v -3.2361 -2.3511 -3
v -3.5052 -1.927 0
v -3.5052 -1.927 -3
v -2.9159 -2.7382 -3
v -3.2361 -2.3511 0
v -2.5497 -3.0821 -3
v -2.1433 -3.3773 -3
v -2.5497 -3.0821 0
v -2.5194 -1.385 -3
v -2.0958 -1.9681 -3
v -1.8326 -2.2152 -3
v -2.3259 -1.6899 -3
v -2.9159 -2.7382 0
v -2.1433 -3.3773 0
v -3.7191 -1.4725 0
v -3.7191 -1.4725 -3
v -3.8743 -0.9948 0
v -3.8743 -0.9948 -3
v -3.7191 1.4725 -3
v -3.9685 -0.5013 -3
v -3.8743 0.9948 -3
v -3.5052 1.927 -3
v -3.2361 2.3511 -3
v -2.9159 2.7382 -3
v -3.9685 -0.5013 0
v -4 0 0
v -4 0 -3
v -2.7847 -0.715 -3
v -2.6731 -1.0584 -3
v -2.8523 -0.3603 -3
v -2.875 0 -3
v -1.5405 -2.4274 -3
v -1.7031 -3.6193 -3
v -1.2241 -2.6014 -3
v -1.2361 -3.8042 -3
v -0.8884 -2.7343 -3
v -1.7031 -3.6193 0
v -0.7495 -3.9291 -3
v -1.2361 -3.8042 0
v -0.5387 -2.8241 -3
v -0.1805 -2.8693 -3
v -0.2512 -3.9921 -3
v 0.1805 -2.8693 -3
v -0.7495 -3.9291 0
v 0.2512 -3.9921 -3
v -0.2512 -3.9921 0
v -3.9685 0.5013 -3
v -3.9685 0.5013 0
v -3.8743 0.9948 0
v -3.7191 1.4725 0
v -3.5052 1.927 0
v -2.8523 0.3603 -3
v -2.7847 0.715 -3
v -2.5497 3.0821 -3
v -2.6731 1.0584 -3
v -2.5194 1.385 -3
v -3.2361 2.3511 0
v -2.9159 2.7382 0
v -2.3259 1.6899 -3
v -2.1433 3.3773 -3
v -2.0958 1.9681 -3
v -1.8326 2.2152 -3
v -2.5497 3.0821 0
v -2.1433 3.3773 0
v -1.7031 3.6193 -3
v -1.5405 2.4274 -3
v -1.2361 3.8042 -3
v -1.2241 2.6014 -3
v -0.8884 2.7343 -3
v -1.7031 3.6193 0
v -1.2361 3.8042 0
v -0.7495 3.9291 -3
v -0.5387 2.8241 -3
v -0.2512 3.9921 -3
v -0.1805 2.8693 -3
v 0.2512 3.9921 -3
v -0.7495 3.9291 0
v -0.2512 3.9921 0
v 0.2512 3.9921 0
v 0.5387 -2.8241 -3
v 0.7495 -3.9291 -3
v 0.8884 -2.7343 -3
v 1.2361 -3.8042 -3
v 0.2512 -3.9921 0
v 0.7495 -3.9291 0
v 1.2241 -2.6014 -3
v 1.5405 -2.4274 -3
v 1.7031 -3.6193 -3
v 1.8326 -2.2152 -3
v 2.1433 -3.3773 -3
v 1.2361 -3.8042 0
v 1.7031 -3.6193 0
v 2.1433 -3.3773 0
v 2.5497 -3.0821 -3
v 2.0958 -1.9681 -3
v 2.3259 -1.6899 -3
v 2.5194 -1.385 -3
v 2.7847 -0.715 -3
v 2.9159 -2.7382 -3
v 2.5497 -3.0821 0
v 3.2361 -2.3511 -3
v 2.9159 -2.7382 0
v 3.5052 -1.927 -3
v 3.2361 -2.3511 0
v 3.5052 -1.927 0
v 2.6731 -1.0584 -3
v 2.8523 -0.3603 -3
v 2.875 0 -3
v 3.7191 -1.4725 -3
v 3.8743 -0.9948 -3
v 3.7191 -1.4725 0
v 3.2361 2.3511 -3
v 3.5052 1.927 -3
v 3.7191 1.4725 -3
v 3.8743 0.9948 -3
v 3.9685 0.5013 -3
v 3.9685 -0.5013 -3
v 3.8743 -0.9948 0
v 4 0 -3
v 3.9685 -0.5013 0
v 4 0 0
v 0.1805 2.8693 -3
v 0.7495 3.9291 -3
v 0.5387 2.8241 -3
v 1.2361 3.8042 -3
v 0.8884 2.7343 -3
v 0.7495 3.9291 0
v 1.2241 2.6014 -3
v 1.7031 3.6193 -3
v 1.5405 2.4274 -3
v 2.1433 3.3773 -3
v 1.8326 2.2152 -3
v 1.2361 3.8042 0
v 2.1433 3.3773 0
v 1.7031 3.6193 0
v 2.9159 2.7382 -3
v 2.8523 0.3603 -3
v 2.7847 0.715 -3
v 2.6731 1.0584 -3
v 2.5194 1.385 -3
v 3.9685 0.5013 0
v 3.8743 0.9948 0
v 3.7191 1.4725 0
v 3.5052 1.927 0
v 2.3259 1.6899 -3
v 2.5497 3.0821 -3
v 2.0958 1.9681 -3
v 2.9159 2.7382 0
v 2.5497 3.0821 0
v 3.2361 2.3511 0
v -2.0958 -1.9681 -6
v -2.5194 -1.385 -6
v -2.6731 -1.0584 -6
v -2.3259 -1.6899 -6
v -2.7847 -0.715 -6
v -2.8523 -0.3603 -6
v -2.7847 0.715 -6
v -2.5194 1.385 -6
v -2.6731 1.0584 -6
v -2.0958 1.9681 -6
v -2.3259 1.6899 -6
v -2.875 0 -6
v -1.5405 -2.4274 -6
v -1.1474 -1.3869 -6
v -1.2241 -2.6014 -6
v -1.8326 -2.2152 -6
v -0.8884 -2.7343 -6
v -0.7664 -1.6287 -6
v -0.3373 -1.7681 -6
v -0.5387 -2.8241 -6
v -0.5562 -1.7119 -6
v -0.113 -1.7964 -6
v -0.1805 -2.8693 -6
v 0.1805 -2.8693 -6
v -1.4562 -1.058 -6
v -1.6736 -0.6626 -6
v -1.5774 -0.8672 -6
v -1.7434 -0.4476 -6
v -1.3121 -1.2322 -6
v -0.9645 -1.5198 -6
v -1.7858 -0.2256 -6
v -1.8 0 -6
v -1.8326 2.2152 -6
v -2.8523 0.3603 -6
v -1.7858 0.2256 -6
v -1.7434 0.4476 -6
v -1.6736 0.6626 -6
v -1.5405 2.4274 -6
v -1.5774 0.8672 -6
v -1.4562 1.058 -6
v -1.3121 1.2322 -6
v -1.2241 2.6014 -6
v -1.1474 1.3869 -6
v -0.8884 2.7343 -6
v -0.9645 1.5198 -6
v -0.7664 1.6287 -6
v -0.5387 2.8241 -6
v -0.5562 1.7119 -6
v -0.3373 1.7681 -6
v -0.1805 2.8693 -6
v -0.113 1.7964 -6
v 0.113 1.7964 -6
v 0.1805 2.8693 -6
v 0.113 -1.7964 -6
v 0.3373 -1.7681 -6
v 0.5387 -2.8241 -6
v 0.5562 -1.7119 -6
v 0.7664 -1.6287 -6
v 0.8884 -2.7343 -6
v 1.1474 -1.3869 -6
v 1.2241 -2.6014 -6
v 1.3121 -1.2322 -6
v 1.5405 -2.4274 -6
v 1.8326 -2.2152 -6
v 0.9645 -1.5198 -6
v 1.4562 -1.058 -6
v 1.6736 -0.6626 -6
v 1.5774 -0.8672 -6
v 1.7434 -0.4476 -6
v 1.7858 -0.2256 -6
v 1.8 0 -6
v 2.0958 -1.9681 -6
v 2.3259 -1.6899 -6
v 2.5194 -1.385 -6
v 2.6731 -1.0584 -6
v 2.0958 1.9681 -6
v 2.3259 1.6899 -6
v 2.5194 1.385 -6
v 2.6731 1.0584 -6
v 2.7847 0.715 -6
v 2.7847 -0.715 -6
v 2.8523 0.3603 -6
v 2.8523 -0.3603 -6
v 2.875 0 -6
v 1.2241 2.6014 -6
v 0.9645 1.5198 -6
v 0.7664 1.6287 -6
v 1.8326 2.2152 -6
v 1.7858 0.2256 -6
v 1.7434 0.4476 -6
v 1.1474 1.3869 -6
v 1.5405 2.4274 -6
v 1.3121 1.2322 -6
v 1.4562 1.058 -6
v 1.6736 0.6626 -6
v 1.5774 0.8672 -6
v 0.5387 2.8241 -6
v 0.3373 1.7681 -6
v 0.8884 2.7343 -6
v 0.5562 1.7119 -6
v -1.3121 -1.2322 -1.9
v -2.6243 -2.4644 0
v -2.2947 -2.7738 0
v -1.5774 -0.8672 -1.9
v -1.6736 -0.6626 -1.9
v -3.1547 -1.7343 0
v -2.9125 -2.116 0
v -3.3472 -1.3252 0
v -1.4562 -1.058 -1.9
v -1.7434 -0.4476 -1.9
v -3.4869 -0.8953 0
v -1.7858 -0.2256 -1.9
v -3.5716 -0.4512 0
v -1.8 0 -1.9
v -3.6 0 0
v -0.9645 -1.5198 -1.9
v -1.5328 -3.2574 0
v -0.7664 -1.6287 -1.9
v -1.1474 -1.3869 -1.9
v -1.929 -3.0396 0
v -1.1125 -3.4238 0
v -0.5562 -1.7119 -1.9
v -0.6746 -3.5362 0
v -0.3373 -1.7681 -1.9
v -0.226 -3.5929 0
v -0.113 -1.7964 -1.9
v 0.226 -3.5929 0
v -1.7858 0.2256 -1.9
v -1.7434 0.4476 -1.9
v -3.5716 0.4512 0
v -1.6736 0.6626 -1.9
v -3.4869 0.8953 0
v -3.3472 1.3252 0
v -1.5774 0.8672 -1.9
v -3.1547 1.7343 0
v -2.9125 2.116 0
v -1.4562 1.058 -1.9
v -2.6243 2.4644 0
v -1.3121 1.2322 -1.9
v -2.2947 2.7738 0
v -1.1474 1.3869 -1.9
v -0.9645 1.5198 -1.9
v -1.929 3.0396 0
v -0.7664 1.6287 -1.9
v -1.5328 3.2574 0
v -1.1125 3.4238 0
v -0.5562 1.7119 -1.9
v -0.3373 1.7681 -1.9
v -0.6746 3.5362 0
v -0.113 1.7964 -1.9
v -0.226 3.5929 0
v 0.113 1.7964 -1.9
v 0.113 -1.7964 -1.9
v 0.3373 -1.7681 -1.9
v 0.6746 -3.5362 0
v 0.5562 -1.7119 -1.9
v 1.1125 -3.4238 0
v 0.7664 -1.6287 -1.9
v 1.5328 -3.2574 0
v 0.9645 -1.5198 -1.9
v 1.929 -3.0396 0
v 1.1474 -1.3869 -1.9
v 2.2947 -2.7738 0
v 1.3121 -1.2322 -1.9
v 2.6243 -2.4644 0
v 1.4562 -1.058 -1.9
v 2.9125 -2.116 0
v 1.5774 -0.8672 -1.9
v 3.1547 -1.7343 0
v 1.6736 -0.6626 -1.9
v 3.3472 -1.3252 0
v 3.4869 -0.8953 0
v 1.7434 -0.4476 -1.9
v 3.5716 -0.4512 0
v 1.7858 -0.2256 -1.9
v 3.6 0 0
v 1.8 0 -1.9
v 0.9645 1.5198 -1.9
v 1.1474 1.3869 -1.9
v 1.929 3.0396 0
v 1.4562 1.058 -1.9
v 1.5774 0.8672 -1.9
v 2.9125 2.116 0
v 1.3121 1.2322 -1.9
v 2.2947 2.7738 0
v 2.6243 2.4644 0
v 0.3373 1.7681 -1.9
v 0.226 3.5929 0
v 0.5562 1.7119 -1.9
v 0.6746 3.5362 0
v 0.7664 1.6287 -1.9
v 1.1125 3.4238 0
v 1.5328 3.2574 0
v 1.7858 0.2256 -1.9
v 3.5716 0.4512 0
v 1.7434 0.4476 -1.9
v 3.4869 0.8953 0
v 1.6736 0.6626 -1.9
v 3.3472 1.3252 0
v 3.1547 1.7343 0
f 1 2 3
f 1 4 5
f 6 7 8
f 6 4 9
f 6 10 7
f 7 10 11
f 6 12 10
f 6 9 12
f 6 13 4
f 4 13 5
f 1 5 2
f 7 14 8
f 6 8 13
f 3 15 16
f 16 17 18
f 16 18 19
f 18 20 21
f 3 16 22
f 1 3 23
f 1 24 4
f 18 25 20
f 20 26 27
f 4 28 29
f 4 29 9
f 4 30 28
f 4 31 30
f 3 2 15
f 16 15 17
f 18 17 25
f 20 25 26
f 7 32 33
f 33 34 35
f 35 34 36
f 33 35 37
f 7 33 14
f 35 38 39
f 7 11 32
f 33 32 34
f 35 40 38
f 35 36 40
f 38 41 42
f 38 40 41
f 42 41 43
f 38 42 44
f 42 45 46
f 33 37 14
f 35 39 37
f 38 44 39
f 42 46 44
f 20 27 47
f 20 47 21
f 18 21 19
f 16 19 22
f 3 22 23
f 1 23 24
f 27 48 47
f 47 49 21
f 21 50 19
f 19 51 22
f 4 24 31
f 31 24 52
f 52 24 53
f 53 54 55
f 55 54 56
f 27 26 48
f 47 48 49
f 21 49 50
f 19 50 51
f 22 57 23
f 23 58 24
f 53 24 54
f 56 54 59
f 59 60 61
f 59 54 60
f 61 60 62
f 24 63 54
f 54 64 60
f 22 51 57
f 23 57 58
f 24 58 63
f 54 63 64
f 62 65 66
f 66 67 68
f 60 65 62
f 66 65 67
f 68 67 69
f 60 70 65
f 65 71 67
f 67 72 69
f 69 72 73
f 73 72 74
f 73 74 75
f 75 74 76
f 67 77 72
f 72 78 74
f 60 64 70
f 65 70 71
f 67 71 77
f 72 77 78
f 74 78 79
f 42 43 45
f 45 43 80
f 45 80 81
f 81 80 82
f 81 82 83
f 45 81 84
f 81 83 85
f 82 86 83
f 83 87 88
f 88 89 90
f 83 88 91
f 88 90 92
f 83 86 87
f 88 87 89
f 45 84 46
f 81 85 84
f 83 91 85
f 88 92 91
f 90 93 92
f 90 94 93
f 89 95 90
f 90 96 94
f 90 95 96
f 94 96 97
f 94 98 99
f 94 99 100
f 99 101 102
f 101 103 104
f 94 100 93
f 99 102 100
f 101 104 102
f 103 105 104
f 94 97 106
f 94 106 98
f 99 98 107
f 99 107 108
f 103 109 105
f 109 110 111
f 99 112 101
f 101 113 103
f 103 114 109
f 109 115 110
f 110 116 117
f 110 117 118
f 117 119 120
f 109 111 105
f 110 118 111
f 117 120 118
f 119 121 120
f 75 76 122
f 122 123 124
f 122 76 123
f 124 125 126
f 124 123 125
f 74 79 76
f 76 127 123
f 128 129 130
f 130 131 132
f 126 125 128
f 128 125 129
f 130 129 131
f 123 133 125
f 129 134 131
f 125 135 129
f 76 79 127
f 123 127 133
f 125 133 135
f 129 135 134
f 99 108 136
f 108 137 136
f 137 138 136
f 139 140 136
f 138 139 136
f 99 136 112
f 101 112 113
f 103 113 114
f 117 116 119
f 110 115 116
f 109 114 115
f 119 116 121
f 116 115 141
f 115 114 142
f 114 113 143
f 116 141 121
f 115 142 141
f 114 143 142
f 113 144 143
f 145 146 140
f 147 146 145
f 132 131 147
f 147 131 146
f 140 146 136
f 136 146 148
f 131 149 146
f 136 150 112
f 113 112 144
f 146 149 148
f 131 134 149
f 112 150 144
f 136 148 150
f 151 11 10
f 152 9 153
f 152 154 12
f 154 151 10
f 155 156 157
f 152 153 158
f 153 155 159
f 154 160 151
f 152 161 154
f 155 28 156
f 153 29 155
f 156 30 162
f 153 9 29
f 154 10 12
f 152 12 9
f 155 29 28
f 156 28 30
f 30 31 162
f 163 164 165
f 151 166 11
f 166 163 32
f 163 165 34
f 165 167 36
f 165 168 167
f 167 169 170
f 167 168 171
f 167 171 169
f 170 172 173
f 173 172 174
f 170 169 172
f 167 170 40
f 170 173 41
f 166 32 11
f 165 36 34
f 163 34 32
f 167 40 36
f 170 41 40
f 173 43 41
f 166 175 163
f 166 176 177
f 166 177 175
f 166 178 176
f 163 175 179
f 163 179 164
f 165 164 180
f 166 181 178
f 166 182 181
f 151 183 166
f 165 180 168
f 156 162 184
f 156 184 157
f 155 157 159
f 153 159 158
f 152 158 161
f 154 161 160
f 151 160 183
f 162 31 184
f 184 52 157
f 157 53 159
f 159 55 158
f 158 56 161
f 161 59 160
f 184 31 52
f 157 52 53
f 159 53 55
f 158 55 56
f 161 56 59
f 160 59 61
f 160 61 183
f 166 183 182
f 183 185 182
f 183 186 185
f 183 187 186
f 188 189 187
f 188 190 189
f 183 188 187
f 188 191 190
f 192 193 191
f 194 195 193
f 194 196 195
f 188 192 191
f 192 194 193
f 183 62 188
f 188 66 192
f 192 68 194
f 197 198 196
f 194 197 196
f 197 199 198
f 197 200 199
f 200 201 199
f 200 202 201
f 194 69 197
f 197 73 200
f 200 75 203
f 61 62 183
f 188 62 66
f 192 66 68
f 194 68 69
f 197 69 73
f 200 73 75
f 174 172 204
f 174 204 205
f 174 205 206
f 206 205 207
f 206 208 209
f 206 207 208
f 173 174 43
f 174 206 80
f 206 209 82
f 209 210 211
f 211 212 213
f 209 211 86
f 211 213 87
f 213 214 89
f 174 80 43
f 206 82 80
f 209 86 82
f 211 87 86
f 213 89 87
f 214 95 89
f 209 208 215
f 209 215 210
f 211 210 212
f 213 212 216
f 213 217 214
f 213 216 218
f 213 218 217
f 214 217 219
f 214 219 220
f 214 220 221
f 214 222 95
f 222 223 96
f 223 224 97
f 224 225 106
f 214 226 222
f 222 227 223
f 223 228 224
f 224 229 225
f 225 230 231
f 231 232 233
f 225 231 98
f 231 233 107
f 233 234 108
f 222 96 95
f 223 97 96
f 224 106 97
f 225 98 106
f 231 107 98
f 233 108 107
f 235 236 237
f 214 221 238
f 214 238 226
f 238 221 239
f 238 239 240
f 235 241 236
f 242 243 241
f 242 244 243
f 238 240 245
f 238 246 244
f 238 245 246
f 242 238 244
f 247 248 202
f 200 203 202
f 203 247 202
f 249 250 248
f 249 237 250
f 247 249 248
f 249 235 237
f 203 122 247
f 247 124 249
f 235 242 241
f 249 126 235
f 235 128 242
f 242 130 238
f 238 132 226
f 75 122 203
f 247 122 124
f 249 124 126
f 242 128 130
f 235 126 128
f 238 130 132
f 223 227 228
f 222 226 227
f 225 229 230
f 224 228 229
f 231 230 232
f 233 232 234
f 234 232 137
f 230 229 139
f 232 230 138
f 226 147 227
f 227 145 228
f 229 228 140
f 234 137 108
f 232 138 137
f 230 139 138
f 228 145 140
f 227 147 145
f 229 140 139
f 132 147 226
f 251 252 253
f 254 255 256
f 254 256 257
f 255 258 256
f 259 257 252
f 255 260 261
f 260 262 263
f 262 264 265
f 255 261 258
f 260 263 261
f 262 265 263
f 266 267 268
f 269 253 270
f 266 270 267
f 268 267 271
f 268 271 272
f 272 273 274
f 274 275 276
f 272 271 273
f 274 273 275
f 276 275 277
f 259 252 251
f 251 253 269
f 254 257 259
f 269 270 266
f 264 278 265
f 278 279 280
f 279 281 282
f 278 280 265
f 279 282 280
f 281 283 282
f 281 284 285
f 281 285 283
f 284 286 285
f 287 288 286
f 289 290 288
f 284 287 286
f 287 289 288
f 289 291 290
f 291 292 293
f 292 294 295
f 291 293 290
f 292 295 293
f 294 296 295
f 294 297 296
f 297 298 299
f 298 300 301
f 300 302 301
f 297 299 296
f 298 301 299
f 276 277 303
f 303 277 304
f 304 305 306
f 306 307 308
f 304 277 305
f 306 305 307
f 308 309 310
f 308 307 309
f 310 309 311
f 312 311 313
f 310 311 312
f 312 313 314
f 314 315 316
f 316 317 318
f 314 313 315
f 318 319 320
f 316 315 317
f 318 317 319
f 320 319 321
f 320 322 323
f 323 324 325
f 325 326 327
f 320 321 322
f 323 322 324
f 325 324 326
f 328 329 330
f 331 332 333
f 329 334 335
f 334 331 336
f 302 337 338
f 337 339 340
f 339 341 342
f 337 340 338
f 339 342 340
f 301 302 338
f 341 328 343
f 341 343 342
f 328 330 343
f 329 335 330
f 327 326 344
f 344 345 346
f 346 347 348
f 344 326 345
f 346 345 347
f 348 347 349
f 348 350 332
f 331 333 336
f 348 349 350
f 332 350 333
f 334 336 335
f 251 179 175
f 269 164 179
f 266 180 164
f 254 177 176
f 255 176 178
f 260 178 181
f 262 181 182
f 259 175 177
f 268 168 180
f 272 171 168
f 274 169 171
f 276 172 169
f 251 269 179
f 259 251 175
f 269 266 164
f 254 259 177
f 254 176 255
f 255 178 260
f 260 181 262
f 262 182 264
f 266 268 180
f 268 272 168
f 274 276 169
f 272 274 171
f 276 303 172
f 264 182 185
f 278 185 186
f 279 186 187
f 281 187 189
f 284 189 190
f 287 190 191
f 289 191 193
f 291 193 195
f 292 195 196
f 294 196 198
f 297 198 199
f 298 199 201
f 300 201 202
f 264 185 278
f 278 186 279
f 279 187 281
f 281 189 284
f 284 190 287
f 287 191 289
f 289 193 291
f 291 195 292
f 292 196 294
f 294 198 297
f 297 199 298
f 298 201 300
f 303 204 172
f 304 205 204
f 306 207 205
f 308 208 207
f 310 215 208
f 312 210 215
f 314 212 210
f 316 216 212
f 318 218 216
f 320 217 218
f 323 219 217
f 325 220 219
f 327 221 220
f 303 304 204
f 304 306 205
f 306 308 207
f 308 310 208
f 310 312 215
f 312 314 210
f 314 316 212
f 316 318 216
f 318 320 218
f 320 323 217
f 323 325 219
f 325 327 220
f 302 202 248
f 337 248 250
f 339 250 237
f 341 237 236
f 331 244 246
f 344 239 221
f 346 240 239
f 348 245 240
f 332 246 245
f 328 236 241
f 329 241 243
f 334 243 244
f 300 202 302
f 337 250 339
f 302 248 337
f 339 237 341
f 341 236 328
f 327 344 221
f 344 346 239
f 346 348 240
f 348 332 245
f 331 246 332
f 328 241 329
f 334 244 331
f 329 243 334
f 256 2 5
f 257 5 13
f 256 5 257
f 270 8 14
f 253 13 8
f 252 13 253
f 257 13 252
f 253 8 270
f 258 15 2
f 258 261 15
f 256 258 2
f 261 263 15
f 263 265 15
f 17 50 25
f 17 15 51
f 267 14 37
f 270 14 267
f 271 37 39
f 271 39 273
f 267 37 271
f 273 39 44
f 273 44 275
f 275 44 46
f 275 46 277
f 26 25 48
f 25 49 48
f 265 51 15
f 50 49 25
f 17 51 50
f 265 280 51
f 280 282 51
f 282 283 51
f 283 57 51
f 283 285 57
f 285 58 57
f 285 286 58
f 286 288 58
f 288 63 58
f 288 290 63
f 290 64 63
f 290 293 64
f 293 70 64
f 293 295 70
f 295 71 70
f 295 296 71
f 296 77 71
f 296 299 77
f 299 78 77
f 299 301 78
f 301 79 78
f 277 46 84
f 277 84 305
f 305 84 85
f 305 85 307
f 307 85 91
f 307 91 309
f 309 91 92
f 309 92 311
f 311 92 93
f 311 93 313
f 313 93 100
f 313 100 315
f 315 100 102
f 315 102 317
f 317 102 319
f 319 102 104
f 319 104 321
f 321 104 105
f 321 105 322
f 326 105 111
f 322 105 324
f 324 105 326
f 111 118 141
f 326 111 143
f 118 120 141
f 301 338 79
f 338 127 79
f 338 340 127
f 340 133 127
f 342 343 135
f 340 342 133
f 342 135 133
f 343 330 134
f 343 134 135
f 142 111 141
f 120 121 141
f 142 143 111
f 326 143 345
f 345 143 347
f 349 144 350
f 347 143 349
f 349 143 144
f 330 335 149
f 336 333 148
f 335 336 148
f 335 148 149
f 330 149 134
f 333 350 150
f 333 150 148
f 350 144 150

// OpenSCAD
$fn = 50;

difference() {
	union() {
		translate(v = [0, 0, -3.0]) {
			cylinder(h = 3, r = 4.0);
		}
		#translate(v = [0, 0, -6.0]) {
			cylinder(h = 6, r = 2.875);
		}
	}
	union() {
		translate(v = [0, 0, 0]) {
			rotate(a = [0, 0, 0]) {
				difference() {
					union() {
						translate(v = [0, 0, -6.0]) {
							cylinder(h = 6, r = 1.5);
						}
						translate(v = [0, 0, -1.9]) {
							cylinder(h = 1.9, r1 = 1.8, r2 = 3.6);
						}
						translate(v = [0, 0, -6.0]) {
							cylinder(h = 6, r = 1.8);
						}
						translate(v = [0, 0, -6.0]) {
							cylinder(h = 6, r = 1.5);
						}
					}
					union();
				}
			}
		}
	}
}
